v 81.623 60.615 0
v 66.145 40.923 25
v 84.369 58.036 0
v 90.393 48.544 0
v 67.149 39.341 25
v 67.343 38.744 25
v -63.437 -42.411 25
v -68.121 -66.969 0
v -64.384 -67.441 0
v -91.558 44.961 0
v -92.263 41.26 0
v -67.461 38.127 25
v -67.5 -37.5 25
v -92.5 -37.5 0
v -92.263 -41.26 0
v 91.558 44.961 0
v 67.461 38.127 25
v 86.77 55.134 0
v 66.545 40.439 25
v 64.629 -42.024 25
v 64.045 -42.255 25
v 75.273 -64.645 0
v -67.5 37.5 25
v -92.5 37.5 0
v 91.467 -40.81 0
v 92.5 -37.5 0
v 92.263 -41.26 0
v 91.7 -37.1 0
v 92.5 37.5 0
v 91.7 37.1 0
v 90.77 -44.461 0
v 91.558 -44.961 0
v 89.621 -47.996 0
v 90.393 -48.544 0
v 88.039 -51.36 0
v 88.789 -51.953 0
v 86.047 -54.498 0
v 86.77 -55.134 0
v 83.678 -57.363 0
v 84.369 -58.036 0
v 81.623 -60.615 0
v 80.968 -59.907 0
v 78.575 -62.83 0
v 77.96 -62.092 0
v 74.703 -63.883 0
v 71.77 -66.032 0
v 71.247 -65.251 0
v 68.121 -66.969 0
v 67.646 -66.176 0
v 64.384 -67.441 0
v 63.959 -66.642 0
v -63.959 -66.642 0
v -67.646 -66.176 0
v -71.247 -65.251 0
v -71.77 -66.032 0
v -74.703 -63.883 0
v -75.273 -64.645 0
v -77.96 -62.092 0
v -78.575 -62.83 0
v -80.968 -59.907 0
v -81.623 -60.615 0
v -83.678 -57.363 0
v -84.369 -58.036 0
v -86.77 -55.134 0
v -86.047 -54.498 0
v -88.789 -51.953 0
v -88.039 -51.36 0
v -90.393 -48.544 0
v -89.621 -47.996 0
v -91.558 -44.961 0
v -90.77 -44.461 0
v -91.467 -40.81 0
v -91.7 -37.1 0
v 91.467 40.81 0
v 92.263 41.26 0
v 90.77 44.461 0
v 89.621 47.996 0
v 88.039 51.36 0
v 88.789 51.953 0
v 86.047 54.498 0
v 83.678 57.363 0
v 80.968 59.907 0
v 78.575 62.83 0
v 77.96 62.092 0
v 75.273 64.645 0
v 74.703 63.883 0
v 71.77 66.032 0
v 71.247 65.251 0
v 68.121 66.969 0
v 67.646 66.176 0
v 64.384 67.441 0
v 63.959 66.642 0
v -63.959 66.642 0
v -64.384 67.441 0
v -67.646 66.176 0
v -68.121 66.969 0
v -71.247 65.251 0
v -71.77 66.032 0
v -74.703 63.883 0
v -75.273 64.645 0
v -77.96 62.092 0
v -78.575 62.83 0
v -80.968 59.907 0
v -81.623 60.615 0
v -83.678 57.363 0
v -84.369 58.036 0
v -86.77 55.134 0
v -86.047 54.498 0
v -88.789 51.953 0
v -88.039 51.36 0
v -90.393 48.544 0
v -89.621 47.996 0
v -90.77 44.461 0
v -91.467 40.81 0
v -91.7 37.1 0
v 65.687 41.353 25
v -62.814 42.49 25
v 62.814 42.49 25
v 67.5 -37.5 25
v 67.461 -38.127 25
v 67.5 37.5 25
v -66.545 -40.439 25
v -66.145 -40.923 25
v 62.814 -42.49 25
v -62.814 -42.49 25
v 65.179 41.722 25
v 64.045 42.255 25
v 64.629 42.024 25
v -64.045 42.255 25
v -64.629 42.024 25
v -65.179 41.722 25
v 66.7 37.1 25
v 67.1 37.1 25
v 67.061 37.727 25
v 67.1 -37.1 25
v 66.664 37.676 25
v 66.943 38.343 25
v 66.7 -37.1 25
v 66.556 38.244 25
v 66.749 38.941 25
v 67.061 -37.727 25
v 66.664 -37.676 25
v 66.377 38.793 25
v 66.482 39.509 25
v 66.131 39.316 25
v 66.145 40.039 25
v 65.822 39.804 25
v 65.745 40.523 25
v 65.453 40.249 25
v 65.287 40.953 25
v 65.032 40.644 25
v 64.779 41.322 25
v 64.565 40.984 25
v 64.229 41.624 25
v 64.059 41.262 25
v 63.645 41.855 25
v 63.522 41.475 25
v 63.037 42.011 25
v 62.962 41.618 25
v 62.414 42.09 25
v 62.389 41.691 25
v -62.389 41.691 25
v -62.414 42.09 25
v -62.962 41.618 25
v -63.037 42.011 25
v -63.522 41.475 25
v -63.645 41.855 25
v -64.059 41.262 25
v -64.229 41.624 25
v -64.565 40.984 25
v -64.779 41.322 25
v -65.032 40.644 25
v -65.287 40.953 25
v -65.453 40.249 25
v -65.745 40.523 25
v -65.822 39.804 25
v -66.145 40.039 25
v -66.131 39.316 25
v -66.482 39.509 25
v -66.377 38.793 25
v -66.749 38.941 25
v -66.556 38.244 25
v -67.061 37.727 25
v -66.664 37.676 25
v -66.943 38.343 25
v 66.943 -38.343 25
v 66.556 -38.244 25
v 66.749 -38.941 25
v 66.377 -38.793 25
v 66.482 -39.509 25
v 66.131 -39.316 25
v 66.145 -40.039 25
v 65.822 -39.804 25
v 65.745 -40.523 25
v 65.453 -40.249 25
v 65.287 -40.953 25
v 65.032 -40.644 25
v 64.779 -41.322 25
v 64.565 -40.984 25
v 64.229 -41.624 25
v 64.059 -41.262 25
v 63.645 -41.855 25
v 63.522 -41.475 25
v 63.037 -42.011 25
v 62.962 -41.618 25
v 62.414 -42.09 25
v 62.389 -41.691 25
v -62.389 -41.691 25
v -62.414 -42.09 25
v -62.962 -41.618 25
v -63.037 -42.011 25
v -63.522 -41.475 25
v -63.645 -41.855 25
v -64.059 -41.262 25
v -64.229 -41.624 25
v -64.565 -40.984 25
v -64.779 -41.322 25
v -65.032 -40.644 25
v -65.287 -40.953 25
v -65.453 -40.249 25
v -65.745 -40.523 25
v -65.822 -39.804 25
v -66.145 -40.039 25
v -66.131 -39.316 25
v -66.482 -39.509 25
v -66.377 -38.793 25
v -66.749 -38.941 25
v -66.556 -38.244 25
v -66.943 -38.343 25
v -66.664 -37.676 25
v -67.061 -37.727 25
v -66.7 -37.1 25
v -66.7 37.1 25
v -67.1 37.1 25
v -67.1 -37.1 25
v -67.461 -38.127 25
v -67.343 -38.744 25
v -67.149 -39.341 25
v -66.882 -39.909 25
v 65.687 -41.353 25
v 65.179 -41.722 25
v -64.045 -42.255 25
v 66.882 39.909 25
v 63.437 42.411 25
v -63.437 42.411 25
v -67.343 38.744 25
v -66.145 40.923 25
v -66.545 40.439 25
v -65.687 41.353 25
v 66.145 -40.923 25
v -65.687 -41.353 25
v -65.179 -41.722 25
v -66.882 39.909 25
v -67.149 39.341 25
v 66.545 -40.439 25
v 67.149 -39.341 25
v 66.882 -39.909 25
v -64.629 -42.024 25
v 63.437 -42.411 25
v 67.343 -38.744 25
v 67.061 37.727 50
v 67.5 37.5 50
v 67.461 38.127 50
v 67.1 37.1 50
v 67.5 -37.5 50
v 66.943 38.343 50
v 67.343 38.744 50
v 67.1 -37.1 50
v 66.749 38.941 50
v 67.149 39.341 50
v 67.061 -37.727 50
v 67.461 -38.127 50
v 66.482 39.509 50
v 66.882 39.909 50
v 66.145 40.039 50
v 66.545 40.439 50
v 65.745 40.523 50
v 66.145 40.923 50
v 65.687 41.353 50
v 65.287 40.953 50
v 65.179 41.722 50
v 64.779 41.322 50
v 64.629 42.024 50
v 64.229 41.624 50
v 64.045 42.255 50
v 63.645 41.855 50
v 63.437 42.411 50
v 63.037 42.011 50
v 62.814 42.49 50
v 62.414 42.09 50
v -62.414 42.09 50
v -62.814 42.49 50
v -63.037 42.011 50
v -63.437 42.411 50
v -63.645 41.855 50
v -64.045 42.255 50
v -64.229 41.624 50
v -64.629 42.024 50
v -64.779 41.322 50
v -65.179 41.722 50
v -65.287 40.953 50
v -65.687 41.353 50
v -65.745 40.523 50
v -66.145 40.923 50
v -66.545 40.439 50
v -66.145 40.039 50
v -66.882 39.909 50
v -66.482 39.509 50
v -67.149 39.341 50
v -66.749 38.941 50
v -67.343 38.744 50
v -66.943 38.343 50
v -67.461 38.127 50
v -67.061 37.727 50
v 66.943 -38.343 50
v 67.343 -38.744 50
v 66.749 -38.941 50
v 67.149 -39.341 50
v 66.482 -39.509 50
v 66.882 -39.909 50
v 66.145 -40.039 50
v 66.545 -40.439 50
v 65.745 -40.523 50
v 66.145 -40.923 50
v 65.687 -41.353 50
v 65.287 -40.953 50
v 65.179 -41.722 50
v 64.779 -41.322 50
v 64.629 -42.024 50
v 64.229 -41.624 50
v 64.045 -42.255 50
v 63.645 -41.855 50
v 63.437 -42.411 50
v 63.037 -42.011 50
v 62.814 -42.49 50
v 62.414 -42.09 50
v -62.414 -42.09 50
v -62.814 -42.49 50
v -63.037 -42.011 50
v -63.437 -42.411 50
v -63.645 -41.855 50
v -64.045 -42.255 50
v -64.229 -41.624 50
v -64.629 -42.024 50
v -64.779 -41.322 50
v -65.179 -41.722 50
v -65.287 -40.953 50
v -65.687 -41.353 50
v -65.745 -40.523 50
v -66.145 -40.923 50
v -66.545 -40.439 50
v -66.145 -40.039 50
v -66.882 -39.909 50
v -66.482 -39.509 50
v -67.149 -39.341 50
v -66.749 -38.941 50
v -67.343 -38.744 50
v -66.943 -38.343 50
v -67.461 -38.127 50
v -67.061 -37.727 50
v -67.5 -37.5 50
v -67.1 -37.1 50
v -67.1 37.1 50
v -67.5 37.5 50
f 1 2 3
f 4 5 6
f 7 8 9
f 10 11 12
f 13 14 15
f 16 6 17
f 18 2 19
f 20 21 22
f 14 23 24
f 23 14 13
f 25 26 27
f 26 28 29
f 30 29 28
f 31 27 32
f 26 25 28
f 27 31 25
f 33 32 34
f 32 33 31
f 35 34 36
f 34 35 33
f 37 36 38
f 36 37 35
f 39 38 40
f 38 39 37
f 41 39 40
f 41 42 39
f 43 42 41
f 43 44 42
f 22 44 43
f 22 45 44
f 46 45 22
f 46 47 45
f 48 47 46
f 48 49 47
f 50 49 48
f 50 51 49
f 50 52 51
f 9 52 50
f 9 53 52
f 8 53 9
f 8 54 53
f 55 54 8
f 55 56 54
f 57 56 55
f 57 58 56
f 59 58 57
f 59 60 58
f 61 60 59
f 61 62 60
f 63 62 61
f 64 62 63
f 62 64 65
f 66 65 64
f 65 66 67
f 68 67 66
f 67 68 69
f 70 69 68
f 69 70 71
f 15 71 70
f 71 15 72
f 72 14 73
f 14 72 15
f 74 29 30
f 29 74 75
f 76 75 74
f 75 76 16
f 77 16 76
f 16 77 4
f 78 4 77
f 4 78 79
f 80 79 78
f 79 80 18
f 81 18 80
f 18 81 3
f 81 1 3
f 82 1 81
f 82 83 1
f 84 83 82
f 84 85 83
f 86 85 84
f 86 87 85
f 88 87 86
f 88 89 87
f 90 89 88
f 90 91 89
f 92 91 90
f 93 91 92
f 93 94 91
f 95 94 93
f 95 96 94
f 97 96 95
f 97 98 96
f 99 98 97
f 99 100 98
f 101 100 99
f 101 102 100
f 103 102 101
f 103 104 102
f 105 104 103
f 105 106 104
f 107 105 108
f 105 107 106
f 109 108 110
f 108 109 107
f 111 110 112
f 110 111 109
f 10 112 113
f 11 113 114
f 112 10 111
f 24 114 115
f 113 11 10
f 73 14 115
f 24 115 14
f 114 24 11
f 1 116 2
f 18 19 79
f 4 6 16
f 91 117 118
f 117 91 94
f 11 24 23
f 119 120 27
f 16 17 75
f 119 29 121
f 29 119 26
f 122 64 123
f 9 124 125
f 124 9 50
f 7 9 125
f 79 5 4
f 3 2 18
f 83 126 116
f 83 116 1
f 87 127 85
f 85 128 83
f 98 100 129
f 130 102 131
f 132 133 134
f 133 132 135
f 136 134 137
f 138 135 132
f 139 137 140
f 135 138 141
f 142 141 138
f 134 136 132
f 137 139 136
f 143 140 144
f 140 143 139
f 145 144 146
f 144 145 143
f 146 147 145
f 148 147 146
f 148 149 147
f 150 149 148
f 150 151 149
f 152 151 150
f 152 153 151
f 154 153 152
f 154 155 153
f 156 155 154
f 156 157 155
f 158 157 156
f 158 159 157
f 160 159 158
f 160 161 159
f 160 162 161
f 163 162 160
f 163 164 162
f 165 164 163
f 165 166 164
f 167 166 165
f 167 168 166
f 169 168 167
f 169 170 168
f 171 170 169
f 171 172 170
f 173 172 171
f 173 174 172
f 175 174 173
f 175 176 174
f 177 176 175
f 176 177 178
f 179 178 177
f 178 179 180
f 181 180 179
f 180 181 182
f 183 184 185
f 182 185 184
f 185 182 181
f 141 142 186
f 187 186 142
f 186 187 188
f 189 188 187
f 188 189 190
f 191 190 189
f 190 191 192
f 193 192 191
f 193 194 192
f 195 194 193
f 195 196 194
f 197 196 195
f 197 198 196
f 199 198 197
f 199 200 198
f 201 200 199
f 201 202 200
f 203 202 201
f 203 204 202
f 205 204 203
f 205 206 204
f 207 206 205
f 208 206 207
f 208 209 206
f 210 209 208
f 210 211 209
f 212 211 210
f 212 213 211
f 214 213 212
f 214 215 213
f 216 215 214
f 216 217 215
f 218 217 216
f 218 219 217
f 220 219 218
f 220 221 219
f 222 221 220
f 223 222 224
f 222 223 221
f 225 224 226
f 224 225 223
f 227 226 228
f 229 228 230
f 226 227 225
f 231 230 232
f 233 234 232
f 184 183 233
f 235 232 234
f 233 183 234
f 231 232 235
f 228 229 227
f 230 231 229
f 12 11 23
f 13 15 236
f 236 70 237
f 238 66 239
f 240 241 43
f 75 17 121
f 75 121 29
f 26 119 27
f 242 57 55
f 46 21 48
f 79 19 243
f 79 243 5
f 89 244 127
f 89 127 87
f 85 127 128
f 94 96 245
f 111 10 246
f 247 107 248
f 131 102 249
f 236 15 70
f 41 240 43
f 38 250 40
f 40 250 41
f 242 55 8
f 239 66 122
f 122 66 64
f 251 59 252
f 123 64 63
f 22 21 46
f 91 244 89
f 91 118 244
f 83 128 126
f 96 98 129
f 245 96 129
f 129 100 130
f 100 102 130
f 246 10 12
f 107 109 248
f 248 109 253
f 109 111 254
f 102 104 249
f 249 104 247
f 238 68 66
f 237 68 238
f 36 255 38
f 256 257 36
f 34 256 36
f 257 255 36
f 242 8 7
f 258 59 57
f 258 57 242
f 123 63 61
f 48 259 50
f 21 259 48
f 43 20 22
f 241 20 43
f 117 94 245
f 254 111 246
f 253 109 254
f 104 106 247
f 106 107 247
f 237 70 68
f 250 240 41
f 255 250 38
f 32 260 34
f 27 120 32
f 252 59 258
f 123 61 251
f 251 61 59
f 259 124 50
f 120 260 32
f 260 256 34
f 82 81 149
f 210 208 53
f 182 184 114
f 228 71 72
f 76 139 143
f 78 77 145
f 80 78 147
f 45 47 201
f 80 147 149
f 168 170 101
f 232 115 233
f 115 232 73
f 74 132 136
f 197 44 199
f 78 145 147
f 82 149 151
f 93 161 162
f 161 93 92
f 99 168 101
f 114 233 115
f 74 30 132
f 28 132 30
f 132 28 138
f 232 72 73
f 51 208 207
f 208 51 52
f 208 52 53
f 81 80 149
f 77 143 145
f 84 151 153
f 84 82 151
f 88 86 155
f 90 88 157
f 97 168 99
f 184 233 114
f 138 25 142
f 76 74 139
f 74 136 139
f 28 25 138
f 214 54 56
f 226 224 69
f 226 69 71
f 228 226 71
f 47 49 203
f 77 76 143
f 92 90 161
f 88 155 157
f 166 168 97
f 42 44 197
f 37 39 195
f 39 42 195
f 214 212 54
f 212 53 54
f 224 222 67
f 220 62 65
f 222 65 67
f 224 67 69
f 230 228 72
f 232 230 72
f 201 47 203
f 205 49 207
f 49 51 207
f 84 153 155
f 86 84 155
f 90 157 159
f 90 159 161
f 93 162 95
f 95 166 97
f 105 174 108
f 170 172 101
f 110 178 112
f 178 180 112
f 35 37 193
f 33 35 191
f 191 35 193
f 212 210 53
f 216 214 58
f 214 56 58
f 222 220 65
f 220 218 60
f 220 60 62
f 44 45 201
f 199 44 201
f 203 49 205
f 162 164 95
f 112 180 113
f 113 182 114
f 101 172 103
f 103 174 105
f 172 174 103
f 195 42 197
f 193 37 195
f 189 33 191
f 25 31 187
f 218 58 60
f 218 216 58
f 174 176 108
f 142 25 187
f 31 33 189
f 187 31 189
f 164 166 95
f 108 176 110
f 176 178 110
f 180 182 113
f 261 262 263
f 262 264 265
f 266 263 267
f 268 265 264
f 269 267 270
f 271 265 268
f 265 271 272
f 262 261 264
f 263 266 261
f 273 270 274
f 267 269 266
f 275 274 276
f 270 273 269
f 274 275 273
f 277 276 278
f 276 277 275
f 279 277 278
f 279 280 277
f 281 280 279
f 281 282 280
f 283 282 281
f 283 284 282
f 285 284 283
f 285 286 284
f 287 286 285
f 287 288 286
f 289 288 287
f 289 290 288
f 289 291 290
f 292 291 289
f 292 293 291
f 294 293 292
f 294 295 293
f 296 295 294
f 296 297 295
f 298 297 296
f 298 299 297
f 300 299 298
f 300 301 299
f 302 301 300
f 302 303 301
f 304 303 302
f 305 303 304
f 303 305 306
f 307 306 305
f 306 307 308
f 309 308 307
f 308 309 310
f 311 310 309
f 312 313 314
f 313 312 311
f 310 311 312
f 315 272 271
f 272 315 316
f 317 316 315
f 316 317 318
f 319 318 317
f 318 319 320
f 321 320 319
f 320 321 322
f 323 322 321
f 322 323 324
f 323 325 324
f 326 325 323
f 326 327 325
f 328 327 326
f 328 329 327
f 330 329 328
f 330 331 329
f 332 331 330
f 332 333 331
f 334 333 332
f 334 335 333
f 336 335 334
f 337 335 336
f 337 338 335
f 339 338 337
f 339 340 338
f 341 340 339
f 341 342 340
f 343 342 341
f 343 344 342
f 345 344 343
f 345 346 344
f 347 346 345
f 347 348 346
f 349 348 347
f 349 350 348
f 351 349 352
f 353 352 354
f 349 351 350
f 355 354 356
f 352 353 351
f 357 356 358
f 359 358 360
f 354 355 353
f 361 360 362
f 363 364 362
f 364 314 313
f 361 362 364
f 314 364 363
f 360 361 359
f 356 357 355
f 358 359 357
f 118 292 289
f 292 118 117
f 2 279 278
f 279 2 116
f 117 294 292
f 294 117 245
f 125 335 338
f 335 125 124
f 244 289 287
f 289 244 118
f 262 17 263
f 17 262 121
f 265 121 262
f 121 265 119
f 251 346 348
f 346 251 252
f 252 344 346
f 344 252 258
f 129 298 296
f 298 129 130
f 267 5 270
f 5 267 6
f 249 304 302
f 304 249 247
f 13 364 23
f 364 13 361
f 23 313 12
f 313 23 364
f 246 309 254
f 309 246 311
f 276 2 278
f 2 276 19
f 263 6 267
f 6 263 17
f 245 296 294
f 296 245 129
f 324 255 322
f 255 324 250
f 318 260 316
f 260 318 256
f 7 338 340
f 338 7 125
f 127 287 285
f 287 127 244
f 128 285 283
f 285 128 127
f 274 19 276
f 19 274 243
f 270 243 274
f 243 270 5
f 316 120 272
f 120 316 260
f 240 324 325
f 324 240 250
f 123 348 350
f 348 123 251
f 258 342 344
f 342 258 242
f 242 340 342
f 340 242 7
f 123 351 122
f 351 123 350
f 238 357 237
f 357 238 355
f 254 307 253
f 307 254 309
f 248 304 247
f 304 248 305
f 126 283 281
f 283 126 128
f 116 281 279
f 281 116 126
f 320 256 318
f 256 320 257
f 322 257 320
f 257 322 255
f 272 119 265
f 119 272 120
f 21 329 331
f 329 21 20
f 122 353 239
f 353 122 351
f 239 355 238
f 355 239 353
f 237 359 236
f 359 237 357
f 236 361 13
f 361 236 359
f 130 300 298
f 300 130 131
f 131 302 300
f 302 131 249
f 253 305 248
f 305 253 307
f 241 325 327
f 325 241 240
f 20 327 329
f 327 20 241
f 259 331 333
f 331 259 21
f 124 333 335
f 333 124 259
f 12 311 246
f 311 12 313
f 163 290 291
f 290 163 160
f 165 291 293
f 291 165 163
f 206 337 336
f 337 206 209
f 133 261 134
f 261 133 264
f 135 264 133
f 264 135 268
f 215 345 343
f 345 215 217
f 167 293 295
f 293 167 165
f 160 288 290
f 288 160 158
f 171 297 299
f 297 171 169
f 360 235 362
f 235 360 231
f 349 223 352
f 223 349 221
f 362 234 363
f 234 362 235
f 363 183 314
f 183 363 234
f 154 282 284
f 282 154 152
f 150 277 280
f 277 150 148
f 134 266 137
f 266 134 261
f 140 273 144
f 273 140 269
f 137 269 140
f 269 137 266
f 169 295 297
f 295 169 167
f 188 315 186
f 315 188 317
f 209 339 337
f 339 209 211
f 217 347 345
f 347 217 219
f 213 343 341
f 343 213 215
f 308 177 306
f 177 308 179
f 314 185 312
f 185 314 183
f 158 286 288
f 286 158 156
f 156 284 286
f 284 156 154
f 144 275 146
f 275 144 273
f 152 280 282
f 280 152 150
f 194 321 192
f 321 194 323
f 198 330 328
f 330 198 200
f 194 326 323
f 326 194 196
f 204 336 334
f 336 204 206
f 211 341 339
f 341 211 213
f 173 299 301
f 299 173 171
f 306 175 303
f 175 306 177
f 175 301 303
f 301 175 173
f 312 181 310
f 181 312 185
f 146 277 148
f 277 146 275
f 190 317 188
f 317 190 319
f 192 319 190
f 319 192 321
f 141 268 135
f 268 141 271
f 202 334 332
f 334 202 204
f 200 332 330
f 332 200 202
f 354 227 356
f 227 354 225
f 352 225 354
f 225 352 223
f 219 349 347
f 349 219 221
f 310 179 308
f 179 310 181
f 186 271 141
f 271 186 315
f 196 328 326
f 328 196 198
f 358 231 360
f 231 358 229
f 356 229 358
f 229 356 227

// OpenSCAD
$fn = 50;


difference() {
	union() {
		translate(v = [0, 0, 0]) {
			rotate(a = [0, 0, 0]) {
				difference() {
					union() {
						hull() {
							translate(v = [-62.5000000000, 37.5000000000, 0]) {
								cylinder(h = 25, r = 5, r1 = 30.0000000000, r2 = 5);
							}
							translate(v = [62.5000000000, 37.5000000000, 0]) {
								cylinder(h = 25, r = 5, r1 = 30.0000000000, r2 = 5);
							}
							translate(v = [-62.5000000000, -37.5000000000, 0]) {
								cylinder(h = 25, r = 5, r1 = 30.0000000000, r2 = 5);
							}
							translate(v = [62.5000000000, -37.5000000000, 0]) {
								cylinder(h = 25, r = 5, r1 = 30.0000000000, r2 = 5);
							}
						}
					}
					union() {
						hull() {
							translate(v = [-62.1000000000, 37.1000000000, 0]) {
								cylinder(h = 25, r = 5, r1 = 29.6000000000, r2 = 4.6000000000);
							}
							translate(v = [62.1000000000, 37.1000000000, 0]) {
								cylinder(h = 25, r = 5, r1 = 29.6000000000, r2 = 4.6000000000);
							}
							translate(v = [-62.1000000000, -37.1000000000, 0]) {
								cylinder(h = 25, r = 5, r1 = 29.6000000000, r2 = 4.6000000000);
							}
							translate(v = [62.1000000000, -37.1000000000, 0]) {
								cylinder(h = 25, r = 5, r1 = 29.6000000000, r2 = 4.6000000000);
							}
						}
					}
				}
			}
		}
		translate(v = [0, 0, 25]) {
			rotate(a = [0, 0, 0]) {
				difference() {
					union() {
						hull() {
							translate(v = [-62.5000000000, 37.5000000000, 0]) {
								cylinder(h = 25, r = 5);
							}
							translate(v = [62.5000000000, 37.5000000000, 0]) {
								cylinder(h = 25, r = 5);
							}
							translate(v = [-62.5000000000, -37.5000000000, 0]) {
								cylinder(h = 25, r = 5);
							}
							translate(v = [62.5000000000, -37.5000000000, 0]) {
								cylinder(h = 25, r = 5);
							}
						}
					}
					union() {
						hull() {
							translate(v = [-62.1000000000, 37.1000000000, 0]) {
								cylinder(h = 25, r = 5);
							}
							translate(v = [62.1000000000, 37.1000000000, 0]) {
								cylinder(h = 25, r = 5);
							}
							translate(v = [-62.1000000000, -37.1000000000, 0]) {
								cylinder(h = 25, r = 5);
							}
							translate(v = [62.1000000000, -37.1000000000, 0]) {
								cylinder(h = 25, r = 5);
							}
						}
					}
				}
			}
		}
	}
	union();
}
